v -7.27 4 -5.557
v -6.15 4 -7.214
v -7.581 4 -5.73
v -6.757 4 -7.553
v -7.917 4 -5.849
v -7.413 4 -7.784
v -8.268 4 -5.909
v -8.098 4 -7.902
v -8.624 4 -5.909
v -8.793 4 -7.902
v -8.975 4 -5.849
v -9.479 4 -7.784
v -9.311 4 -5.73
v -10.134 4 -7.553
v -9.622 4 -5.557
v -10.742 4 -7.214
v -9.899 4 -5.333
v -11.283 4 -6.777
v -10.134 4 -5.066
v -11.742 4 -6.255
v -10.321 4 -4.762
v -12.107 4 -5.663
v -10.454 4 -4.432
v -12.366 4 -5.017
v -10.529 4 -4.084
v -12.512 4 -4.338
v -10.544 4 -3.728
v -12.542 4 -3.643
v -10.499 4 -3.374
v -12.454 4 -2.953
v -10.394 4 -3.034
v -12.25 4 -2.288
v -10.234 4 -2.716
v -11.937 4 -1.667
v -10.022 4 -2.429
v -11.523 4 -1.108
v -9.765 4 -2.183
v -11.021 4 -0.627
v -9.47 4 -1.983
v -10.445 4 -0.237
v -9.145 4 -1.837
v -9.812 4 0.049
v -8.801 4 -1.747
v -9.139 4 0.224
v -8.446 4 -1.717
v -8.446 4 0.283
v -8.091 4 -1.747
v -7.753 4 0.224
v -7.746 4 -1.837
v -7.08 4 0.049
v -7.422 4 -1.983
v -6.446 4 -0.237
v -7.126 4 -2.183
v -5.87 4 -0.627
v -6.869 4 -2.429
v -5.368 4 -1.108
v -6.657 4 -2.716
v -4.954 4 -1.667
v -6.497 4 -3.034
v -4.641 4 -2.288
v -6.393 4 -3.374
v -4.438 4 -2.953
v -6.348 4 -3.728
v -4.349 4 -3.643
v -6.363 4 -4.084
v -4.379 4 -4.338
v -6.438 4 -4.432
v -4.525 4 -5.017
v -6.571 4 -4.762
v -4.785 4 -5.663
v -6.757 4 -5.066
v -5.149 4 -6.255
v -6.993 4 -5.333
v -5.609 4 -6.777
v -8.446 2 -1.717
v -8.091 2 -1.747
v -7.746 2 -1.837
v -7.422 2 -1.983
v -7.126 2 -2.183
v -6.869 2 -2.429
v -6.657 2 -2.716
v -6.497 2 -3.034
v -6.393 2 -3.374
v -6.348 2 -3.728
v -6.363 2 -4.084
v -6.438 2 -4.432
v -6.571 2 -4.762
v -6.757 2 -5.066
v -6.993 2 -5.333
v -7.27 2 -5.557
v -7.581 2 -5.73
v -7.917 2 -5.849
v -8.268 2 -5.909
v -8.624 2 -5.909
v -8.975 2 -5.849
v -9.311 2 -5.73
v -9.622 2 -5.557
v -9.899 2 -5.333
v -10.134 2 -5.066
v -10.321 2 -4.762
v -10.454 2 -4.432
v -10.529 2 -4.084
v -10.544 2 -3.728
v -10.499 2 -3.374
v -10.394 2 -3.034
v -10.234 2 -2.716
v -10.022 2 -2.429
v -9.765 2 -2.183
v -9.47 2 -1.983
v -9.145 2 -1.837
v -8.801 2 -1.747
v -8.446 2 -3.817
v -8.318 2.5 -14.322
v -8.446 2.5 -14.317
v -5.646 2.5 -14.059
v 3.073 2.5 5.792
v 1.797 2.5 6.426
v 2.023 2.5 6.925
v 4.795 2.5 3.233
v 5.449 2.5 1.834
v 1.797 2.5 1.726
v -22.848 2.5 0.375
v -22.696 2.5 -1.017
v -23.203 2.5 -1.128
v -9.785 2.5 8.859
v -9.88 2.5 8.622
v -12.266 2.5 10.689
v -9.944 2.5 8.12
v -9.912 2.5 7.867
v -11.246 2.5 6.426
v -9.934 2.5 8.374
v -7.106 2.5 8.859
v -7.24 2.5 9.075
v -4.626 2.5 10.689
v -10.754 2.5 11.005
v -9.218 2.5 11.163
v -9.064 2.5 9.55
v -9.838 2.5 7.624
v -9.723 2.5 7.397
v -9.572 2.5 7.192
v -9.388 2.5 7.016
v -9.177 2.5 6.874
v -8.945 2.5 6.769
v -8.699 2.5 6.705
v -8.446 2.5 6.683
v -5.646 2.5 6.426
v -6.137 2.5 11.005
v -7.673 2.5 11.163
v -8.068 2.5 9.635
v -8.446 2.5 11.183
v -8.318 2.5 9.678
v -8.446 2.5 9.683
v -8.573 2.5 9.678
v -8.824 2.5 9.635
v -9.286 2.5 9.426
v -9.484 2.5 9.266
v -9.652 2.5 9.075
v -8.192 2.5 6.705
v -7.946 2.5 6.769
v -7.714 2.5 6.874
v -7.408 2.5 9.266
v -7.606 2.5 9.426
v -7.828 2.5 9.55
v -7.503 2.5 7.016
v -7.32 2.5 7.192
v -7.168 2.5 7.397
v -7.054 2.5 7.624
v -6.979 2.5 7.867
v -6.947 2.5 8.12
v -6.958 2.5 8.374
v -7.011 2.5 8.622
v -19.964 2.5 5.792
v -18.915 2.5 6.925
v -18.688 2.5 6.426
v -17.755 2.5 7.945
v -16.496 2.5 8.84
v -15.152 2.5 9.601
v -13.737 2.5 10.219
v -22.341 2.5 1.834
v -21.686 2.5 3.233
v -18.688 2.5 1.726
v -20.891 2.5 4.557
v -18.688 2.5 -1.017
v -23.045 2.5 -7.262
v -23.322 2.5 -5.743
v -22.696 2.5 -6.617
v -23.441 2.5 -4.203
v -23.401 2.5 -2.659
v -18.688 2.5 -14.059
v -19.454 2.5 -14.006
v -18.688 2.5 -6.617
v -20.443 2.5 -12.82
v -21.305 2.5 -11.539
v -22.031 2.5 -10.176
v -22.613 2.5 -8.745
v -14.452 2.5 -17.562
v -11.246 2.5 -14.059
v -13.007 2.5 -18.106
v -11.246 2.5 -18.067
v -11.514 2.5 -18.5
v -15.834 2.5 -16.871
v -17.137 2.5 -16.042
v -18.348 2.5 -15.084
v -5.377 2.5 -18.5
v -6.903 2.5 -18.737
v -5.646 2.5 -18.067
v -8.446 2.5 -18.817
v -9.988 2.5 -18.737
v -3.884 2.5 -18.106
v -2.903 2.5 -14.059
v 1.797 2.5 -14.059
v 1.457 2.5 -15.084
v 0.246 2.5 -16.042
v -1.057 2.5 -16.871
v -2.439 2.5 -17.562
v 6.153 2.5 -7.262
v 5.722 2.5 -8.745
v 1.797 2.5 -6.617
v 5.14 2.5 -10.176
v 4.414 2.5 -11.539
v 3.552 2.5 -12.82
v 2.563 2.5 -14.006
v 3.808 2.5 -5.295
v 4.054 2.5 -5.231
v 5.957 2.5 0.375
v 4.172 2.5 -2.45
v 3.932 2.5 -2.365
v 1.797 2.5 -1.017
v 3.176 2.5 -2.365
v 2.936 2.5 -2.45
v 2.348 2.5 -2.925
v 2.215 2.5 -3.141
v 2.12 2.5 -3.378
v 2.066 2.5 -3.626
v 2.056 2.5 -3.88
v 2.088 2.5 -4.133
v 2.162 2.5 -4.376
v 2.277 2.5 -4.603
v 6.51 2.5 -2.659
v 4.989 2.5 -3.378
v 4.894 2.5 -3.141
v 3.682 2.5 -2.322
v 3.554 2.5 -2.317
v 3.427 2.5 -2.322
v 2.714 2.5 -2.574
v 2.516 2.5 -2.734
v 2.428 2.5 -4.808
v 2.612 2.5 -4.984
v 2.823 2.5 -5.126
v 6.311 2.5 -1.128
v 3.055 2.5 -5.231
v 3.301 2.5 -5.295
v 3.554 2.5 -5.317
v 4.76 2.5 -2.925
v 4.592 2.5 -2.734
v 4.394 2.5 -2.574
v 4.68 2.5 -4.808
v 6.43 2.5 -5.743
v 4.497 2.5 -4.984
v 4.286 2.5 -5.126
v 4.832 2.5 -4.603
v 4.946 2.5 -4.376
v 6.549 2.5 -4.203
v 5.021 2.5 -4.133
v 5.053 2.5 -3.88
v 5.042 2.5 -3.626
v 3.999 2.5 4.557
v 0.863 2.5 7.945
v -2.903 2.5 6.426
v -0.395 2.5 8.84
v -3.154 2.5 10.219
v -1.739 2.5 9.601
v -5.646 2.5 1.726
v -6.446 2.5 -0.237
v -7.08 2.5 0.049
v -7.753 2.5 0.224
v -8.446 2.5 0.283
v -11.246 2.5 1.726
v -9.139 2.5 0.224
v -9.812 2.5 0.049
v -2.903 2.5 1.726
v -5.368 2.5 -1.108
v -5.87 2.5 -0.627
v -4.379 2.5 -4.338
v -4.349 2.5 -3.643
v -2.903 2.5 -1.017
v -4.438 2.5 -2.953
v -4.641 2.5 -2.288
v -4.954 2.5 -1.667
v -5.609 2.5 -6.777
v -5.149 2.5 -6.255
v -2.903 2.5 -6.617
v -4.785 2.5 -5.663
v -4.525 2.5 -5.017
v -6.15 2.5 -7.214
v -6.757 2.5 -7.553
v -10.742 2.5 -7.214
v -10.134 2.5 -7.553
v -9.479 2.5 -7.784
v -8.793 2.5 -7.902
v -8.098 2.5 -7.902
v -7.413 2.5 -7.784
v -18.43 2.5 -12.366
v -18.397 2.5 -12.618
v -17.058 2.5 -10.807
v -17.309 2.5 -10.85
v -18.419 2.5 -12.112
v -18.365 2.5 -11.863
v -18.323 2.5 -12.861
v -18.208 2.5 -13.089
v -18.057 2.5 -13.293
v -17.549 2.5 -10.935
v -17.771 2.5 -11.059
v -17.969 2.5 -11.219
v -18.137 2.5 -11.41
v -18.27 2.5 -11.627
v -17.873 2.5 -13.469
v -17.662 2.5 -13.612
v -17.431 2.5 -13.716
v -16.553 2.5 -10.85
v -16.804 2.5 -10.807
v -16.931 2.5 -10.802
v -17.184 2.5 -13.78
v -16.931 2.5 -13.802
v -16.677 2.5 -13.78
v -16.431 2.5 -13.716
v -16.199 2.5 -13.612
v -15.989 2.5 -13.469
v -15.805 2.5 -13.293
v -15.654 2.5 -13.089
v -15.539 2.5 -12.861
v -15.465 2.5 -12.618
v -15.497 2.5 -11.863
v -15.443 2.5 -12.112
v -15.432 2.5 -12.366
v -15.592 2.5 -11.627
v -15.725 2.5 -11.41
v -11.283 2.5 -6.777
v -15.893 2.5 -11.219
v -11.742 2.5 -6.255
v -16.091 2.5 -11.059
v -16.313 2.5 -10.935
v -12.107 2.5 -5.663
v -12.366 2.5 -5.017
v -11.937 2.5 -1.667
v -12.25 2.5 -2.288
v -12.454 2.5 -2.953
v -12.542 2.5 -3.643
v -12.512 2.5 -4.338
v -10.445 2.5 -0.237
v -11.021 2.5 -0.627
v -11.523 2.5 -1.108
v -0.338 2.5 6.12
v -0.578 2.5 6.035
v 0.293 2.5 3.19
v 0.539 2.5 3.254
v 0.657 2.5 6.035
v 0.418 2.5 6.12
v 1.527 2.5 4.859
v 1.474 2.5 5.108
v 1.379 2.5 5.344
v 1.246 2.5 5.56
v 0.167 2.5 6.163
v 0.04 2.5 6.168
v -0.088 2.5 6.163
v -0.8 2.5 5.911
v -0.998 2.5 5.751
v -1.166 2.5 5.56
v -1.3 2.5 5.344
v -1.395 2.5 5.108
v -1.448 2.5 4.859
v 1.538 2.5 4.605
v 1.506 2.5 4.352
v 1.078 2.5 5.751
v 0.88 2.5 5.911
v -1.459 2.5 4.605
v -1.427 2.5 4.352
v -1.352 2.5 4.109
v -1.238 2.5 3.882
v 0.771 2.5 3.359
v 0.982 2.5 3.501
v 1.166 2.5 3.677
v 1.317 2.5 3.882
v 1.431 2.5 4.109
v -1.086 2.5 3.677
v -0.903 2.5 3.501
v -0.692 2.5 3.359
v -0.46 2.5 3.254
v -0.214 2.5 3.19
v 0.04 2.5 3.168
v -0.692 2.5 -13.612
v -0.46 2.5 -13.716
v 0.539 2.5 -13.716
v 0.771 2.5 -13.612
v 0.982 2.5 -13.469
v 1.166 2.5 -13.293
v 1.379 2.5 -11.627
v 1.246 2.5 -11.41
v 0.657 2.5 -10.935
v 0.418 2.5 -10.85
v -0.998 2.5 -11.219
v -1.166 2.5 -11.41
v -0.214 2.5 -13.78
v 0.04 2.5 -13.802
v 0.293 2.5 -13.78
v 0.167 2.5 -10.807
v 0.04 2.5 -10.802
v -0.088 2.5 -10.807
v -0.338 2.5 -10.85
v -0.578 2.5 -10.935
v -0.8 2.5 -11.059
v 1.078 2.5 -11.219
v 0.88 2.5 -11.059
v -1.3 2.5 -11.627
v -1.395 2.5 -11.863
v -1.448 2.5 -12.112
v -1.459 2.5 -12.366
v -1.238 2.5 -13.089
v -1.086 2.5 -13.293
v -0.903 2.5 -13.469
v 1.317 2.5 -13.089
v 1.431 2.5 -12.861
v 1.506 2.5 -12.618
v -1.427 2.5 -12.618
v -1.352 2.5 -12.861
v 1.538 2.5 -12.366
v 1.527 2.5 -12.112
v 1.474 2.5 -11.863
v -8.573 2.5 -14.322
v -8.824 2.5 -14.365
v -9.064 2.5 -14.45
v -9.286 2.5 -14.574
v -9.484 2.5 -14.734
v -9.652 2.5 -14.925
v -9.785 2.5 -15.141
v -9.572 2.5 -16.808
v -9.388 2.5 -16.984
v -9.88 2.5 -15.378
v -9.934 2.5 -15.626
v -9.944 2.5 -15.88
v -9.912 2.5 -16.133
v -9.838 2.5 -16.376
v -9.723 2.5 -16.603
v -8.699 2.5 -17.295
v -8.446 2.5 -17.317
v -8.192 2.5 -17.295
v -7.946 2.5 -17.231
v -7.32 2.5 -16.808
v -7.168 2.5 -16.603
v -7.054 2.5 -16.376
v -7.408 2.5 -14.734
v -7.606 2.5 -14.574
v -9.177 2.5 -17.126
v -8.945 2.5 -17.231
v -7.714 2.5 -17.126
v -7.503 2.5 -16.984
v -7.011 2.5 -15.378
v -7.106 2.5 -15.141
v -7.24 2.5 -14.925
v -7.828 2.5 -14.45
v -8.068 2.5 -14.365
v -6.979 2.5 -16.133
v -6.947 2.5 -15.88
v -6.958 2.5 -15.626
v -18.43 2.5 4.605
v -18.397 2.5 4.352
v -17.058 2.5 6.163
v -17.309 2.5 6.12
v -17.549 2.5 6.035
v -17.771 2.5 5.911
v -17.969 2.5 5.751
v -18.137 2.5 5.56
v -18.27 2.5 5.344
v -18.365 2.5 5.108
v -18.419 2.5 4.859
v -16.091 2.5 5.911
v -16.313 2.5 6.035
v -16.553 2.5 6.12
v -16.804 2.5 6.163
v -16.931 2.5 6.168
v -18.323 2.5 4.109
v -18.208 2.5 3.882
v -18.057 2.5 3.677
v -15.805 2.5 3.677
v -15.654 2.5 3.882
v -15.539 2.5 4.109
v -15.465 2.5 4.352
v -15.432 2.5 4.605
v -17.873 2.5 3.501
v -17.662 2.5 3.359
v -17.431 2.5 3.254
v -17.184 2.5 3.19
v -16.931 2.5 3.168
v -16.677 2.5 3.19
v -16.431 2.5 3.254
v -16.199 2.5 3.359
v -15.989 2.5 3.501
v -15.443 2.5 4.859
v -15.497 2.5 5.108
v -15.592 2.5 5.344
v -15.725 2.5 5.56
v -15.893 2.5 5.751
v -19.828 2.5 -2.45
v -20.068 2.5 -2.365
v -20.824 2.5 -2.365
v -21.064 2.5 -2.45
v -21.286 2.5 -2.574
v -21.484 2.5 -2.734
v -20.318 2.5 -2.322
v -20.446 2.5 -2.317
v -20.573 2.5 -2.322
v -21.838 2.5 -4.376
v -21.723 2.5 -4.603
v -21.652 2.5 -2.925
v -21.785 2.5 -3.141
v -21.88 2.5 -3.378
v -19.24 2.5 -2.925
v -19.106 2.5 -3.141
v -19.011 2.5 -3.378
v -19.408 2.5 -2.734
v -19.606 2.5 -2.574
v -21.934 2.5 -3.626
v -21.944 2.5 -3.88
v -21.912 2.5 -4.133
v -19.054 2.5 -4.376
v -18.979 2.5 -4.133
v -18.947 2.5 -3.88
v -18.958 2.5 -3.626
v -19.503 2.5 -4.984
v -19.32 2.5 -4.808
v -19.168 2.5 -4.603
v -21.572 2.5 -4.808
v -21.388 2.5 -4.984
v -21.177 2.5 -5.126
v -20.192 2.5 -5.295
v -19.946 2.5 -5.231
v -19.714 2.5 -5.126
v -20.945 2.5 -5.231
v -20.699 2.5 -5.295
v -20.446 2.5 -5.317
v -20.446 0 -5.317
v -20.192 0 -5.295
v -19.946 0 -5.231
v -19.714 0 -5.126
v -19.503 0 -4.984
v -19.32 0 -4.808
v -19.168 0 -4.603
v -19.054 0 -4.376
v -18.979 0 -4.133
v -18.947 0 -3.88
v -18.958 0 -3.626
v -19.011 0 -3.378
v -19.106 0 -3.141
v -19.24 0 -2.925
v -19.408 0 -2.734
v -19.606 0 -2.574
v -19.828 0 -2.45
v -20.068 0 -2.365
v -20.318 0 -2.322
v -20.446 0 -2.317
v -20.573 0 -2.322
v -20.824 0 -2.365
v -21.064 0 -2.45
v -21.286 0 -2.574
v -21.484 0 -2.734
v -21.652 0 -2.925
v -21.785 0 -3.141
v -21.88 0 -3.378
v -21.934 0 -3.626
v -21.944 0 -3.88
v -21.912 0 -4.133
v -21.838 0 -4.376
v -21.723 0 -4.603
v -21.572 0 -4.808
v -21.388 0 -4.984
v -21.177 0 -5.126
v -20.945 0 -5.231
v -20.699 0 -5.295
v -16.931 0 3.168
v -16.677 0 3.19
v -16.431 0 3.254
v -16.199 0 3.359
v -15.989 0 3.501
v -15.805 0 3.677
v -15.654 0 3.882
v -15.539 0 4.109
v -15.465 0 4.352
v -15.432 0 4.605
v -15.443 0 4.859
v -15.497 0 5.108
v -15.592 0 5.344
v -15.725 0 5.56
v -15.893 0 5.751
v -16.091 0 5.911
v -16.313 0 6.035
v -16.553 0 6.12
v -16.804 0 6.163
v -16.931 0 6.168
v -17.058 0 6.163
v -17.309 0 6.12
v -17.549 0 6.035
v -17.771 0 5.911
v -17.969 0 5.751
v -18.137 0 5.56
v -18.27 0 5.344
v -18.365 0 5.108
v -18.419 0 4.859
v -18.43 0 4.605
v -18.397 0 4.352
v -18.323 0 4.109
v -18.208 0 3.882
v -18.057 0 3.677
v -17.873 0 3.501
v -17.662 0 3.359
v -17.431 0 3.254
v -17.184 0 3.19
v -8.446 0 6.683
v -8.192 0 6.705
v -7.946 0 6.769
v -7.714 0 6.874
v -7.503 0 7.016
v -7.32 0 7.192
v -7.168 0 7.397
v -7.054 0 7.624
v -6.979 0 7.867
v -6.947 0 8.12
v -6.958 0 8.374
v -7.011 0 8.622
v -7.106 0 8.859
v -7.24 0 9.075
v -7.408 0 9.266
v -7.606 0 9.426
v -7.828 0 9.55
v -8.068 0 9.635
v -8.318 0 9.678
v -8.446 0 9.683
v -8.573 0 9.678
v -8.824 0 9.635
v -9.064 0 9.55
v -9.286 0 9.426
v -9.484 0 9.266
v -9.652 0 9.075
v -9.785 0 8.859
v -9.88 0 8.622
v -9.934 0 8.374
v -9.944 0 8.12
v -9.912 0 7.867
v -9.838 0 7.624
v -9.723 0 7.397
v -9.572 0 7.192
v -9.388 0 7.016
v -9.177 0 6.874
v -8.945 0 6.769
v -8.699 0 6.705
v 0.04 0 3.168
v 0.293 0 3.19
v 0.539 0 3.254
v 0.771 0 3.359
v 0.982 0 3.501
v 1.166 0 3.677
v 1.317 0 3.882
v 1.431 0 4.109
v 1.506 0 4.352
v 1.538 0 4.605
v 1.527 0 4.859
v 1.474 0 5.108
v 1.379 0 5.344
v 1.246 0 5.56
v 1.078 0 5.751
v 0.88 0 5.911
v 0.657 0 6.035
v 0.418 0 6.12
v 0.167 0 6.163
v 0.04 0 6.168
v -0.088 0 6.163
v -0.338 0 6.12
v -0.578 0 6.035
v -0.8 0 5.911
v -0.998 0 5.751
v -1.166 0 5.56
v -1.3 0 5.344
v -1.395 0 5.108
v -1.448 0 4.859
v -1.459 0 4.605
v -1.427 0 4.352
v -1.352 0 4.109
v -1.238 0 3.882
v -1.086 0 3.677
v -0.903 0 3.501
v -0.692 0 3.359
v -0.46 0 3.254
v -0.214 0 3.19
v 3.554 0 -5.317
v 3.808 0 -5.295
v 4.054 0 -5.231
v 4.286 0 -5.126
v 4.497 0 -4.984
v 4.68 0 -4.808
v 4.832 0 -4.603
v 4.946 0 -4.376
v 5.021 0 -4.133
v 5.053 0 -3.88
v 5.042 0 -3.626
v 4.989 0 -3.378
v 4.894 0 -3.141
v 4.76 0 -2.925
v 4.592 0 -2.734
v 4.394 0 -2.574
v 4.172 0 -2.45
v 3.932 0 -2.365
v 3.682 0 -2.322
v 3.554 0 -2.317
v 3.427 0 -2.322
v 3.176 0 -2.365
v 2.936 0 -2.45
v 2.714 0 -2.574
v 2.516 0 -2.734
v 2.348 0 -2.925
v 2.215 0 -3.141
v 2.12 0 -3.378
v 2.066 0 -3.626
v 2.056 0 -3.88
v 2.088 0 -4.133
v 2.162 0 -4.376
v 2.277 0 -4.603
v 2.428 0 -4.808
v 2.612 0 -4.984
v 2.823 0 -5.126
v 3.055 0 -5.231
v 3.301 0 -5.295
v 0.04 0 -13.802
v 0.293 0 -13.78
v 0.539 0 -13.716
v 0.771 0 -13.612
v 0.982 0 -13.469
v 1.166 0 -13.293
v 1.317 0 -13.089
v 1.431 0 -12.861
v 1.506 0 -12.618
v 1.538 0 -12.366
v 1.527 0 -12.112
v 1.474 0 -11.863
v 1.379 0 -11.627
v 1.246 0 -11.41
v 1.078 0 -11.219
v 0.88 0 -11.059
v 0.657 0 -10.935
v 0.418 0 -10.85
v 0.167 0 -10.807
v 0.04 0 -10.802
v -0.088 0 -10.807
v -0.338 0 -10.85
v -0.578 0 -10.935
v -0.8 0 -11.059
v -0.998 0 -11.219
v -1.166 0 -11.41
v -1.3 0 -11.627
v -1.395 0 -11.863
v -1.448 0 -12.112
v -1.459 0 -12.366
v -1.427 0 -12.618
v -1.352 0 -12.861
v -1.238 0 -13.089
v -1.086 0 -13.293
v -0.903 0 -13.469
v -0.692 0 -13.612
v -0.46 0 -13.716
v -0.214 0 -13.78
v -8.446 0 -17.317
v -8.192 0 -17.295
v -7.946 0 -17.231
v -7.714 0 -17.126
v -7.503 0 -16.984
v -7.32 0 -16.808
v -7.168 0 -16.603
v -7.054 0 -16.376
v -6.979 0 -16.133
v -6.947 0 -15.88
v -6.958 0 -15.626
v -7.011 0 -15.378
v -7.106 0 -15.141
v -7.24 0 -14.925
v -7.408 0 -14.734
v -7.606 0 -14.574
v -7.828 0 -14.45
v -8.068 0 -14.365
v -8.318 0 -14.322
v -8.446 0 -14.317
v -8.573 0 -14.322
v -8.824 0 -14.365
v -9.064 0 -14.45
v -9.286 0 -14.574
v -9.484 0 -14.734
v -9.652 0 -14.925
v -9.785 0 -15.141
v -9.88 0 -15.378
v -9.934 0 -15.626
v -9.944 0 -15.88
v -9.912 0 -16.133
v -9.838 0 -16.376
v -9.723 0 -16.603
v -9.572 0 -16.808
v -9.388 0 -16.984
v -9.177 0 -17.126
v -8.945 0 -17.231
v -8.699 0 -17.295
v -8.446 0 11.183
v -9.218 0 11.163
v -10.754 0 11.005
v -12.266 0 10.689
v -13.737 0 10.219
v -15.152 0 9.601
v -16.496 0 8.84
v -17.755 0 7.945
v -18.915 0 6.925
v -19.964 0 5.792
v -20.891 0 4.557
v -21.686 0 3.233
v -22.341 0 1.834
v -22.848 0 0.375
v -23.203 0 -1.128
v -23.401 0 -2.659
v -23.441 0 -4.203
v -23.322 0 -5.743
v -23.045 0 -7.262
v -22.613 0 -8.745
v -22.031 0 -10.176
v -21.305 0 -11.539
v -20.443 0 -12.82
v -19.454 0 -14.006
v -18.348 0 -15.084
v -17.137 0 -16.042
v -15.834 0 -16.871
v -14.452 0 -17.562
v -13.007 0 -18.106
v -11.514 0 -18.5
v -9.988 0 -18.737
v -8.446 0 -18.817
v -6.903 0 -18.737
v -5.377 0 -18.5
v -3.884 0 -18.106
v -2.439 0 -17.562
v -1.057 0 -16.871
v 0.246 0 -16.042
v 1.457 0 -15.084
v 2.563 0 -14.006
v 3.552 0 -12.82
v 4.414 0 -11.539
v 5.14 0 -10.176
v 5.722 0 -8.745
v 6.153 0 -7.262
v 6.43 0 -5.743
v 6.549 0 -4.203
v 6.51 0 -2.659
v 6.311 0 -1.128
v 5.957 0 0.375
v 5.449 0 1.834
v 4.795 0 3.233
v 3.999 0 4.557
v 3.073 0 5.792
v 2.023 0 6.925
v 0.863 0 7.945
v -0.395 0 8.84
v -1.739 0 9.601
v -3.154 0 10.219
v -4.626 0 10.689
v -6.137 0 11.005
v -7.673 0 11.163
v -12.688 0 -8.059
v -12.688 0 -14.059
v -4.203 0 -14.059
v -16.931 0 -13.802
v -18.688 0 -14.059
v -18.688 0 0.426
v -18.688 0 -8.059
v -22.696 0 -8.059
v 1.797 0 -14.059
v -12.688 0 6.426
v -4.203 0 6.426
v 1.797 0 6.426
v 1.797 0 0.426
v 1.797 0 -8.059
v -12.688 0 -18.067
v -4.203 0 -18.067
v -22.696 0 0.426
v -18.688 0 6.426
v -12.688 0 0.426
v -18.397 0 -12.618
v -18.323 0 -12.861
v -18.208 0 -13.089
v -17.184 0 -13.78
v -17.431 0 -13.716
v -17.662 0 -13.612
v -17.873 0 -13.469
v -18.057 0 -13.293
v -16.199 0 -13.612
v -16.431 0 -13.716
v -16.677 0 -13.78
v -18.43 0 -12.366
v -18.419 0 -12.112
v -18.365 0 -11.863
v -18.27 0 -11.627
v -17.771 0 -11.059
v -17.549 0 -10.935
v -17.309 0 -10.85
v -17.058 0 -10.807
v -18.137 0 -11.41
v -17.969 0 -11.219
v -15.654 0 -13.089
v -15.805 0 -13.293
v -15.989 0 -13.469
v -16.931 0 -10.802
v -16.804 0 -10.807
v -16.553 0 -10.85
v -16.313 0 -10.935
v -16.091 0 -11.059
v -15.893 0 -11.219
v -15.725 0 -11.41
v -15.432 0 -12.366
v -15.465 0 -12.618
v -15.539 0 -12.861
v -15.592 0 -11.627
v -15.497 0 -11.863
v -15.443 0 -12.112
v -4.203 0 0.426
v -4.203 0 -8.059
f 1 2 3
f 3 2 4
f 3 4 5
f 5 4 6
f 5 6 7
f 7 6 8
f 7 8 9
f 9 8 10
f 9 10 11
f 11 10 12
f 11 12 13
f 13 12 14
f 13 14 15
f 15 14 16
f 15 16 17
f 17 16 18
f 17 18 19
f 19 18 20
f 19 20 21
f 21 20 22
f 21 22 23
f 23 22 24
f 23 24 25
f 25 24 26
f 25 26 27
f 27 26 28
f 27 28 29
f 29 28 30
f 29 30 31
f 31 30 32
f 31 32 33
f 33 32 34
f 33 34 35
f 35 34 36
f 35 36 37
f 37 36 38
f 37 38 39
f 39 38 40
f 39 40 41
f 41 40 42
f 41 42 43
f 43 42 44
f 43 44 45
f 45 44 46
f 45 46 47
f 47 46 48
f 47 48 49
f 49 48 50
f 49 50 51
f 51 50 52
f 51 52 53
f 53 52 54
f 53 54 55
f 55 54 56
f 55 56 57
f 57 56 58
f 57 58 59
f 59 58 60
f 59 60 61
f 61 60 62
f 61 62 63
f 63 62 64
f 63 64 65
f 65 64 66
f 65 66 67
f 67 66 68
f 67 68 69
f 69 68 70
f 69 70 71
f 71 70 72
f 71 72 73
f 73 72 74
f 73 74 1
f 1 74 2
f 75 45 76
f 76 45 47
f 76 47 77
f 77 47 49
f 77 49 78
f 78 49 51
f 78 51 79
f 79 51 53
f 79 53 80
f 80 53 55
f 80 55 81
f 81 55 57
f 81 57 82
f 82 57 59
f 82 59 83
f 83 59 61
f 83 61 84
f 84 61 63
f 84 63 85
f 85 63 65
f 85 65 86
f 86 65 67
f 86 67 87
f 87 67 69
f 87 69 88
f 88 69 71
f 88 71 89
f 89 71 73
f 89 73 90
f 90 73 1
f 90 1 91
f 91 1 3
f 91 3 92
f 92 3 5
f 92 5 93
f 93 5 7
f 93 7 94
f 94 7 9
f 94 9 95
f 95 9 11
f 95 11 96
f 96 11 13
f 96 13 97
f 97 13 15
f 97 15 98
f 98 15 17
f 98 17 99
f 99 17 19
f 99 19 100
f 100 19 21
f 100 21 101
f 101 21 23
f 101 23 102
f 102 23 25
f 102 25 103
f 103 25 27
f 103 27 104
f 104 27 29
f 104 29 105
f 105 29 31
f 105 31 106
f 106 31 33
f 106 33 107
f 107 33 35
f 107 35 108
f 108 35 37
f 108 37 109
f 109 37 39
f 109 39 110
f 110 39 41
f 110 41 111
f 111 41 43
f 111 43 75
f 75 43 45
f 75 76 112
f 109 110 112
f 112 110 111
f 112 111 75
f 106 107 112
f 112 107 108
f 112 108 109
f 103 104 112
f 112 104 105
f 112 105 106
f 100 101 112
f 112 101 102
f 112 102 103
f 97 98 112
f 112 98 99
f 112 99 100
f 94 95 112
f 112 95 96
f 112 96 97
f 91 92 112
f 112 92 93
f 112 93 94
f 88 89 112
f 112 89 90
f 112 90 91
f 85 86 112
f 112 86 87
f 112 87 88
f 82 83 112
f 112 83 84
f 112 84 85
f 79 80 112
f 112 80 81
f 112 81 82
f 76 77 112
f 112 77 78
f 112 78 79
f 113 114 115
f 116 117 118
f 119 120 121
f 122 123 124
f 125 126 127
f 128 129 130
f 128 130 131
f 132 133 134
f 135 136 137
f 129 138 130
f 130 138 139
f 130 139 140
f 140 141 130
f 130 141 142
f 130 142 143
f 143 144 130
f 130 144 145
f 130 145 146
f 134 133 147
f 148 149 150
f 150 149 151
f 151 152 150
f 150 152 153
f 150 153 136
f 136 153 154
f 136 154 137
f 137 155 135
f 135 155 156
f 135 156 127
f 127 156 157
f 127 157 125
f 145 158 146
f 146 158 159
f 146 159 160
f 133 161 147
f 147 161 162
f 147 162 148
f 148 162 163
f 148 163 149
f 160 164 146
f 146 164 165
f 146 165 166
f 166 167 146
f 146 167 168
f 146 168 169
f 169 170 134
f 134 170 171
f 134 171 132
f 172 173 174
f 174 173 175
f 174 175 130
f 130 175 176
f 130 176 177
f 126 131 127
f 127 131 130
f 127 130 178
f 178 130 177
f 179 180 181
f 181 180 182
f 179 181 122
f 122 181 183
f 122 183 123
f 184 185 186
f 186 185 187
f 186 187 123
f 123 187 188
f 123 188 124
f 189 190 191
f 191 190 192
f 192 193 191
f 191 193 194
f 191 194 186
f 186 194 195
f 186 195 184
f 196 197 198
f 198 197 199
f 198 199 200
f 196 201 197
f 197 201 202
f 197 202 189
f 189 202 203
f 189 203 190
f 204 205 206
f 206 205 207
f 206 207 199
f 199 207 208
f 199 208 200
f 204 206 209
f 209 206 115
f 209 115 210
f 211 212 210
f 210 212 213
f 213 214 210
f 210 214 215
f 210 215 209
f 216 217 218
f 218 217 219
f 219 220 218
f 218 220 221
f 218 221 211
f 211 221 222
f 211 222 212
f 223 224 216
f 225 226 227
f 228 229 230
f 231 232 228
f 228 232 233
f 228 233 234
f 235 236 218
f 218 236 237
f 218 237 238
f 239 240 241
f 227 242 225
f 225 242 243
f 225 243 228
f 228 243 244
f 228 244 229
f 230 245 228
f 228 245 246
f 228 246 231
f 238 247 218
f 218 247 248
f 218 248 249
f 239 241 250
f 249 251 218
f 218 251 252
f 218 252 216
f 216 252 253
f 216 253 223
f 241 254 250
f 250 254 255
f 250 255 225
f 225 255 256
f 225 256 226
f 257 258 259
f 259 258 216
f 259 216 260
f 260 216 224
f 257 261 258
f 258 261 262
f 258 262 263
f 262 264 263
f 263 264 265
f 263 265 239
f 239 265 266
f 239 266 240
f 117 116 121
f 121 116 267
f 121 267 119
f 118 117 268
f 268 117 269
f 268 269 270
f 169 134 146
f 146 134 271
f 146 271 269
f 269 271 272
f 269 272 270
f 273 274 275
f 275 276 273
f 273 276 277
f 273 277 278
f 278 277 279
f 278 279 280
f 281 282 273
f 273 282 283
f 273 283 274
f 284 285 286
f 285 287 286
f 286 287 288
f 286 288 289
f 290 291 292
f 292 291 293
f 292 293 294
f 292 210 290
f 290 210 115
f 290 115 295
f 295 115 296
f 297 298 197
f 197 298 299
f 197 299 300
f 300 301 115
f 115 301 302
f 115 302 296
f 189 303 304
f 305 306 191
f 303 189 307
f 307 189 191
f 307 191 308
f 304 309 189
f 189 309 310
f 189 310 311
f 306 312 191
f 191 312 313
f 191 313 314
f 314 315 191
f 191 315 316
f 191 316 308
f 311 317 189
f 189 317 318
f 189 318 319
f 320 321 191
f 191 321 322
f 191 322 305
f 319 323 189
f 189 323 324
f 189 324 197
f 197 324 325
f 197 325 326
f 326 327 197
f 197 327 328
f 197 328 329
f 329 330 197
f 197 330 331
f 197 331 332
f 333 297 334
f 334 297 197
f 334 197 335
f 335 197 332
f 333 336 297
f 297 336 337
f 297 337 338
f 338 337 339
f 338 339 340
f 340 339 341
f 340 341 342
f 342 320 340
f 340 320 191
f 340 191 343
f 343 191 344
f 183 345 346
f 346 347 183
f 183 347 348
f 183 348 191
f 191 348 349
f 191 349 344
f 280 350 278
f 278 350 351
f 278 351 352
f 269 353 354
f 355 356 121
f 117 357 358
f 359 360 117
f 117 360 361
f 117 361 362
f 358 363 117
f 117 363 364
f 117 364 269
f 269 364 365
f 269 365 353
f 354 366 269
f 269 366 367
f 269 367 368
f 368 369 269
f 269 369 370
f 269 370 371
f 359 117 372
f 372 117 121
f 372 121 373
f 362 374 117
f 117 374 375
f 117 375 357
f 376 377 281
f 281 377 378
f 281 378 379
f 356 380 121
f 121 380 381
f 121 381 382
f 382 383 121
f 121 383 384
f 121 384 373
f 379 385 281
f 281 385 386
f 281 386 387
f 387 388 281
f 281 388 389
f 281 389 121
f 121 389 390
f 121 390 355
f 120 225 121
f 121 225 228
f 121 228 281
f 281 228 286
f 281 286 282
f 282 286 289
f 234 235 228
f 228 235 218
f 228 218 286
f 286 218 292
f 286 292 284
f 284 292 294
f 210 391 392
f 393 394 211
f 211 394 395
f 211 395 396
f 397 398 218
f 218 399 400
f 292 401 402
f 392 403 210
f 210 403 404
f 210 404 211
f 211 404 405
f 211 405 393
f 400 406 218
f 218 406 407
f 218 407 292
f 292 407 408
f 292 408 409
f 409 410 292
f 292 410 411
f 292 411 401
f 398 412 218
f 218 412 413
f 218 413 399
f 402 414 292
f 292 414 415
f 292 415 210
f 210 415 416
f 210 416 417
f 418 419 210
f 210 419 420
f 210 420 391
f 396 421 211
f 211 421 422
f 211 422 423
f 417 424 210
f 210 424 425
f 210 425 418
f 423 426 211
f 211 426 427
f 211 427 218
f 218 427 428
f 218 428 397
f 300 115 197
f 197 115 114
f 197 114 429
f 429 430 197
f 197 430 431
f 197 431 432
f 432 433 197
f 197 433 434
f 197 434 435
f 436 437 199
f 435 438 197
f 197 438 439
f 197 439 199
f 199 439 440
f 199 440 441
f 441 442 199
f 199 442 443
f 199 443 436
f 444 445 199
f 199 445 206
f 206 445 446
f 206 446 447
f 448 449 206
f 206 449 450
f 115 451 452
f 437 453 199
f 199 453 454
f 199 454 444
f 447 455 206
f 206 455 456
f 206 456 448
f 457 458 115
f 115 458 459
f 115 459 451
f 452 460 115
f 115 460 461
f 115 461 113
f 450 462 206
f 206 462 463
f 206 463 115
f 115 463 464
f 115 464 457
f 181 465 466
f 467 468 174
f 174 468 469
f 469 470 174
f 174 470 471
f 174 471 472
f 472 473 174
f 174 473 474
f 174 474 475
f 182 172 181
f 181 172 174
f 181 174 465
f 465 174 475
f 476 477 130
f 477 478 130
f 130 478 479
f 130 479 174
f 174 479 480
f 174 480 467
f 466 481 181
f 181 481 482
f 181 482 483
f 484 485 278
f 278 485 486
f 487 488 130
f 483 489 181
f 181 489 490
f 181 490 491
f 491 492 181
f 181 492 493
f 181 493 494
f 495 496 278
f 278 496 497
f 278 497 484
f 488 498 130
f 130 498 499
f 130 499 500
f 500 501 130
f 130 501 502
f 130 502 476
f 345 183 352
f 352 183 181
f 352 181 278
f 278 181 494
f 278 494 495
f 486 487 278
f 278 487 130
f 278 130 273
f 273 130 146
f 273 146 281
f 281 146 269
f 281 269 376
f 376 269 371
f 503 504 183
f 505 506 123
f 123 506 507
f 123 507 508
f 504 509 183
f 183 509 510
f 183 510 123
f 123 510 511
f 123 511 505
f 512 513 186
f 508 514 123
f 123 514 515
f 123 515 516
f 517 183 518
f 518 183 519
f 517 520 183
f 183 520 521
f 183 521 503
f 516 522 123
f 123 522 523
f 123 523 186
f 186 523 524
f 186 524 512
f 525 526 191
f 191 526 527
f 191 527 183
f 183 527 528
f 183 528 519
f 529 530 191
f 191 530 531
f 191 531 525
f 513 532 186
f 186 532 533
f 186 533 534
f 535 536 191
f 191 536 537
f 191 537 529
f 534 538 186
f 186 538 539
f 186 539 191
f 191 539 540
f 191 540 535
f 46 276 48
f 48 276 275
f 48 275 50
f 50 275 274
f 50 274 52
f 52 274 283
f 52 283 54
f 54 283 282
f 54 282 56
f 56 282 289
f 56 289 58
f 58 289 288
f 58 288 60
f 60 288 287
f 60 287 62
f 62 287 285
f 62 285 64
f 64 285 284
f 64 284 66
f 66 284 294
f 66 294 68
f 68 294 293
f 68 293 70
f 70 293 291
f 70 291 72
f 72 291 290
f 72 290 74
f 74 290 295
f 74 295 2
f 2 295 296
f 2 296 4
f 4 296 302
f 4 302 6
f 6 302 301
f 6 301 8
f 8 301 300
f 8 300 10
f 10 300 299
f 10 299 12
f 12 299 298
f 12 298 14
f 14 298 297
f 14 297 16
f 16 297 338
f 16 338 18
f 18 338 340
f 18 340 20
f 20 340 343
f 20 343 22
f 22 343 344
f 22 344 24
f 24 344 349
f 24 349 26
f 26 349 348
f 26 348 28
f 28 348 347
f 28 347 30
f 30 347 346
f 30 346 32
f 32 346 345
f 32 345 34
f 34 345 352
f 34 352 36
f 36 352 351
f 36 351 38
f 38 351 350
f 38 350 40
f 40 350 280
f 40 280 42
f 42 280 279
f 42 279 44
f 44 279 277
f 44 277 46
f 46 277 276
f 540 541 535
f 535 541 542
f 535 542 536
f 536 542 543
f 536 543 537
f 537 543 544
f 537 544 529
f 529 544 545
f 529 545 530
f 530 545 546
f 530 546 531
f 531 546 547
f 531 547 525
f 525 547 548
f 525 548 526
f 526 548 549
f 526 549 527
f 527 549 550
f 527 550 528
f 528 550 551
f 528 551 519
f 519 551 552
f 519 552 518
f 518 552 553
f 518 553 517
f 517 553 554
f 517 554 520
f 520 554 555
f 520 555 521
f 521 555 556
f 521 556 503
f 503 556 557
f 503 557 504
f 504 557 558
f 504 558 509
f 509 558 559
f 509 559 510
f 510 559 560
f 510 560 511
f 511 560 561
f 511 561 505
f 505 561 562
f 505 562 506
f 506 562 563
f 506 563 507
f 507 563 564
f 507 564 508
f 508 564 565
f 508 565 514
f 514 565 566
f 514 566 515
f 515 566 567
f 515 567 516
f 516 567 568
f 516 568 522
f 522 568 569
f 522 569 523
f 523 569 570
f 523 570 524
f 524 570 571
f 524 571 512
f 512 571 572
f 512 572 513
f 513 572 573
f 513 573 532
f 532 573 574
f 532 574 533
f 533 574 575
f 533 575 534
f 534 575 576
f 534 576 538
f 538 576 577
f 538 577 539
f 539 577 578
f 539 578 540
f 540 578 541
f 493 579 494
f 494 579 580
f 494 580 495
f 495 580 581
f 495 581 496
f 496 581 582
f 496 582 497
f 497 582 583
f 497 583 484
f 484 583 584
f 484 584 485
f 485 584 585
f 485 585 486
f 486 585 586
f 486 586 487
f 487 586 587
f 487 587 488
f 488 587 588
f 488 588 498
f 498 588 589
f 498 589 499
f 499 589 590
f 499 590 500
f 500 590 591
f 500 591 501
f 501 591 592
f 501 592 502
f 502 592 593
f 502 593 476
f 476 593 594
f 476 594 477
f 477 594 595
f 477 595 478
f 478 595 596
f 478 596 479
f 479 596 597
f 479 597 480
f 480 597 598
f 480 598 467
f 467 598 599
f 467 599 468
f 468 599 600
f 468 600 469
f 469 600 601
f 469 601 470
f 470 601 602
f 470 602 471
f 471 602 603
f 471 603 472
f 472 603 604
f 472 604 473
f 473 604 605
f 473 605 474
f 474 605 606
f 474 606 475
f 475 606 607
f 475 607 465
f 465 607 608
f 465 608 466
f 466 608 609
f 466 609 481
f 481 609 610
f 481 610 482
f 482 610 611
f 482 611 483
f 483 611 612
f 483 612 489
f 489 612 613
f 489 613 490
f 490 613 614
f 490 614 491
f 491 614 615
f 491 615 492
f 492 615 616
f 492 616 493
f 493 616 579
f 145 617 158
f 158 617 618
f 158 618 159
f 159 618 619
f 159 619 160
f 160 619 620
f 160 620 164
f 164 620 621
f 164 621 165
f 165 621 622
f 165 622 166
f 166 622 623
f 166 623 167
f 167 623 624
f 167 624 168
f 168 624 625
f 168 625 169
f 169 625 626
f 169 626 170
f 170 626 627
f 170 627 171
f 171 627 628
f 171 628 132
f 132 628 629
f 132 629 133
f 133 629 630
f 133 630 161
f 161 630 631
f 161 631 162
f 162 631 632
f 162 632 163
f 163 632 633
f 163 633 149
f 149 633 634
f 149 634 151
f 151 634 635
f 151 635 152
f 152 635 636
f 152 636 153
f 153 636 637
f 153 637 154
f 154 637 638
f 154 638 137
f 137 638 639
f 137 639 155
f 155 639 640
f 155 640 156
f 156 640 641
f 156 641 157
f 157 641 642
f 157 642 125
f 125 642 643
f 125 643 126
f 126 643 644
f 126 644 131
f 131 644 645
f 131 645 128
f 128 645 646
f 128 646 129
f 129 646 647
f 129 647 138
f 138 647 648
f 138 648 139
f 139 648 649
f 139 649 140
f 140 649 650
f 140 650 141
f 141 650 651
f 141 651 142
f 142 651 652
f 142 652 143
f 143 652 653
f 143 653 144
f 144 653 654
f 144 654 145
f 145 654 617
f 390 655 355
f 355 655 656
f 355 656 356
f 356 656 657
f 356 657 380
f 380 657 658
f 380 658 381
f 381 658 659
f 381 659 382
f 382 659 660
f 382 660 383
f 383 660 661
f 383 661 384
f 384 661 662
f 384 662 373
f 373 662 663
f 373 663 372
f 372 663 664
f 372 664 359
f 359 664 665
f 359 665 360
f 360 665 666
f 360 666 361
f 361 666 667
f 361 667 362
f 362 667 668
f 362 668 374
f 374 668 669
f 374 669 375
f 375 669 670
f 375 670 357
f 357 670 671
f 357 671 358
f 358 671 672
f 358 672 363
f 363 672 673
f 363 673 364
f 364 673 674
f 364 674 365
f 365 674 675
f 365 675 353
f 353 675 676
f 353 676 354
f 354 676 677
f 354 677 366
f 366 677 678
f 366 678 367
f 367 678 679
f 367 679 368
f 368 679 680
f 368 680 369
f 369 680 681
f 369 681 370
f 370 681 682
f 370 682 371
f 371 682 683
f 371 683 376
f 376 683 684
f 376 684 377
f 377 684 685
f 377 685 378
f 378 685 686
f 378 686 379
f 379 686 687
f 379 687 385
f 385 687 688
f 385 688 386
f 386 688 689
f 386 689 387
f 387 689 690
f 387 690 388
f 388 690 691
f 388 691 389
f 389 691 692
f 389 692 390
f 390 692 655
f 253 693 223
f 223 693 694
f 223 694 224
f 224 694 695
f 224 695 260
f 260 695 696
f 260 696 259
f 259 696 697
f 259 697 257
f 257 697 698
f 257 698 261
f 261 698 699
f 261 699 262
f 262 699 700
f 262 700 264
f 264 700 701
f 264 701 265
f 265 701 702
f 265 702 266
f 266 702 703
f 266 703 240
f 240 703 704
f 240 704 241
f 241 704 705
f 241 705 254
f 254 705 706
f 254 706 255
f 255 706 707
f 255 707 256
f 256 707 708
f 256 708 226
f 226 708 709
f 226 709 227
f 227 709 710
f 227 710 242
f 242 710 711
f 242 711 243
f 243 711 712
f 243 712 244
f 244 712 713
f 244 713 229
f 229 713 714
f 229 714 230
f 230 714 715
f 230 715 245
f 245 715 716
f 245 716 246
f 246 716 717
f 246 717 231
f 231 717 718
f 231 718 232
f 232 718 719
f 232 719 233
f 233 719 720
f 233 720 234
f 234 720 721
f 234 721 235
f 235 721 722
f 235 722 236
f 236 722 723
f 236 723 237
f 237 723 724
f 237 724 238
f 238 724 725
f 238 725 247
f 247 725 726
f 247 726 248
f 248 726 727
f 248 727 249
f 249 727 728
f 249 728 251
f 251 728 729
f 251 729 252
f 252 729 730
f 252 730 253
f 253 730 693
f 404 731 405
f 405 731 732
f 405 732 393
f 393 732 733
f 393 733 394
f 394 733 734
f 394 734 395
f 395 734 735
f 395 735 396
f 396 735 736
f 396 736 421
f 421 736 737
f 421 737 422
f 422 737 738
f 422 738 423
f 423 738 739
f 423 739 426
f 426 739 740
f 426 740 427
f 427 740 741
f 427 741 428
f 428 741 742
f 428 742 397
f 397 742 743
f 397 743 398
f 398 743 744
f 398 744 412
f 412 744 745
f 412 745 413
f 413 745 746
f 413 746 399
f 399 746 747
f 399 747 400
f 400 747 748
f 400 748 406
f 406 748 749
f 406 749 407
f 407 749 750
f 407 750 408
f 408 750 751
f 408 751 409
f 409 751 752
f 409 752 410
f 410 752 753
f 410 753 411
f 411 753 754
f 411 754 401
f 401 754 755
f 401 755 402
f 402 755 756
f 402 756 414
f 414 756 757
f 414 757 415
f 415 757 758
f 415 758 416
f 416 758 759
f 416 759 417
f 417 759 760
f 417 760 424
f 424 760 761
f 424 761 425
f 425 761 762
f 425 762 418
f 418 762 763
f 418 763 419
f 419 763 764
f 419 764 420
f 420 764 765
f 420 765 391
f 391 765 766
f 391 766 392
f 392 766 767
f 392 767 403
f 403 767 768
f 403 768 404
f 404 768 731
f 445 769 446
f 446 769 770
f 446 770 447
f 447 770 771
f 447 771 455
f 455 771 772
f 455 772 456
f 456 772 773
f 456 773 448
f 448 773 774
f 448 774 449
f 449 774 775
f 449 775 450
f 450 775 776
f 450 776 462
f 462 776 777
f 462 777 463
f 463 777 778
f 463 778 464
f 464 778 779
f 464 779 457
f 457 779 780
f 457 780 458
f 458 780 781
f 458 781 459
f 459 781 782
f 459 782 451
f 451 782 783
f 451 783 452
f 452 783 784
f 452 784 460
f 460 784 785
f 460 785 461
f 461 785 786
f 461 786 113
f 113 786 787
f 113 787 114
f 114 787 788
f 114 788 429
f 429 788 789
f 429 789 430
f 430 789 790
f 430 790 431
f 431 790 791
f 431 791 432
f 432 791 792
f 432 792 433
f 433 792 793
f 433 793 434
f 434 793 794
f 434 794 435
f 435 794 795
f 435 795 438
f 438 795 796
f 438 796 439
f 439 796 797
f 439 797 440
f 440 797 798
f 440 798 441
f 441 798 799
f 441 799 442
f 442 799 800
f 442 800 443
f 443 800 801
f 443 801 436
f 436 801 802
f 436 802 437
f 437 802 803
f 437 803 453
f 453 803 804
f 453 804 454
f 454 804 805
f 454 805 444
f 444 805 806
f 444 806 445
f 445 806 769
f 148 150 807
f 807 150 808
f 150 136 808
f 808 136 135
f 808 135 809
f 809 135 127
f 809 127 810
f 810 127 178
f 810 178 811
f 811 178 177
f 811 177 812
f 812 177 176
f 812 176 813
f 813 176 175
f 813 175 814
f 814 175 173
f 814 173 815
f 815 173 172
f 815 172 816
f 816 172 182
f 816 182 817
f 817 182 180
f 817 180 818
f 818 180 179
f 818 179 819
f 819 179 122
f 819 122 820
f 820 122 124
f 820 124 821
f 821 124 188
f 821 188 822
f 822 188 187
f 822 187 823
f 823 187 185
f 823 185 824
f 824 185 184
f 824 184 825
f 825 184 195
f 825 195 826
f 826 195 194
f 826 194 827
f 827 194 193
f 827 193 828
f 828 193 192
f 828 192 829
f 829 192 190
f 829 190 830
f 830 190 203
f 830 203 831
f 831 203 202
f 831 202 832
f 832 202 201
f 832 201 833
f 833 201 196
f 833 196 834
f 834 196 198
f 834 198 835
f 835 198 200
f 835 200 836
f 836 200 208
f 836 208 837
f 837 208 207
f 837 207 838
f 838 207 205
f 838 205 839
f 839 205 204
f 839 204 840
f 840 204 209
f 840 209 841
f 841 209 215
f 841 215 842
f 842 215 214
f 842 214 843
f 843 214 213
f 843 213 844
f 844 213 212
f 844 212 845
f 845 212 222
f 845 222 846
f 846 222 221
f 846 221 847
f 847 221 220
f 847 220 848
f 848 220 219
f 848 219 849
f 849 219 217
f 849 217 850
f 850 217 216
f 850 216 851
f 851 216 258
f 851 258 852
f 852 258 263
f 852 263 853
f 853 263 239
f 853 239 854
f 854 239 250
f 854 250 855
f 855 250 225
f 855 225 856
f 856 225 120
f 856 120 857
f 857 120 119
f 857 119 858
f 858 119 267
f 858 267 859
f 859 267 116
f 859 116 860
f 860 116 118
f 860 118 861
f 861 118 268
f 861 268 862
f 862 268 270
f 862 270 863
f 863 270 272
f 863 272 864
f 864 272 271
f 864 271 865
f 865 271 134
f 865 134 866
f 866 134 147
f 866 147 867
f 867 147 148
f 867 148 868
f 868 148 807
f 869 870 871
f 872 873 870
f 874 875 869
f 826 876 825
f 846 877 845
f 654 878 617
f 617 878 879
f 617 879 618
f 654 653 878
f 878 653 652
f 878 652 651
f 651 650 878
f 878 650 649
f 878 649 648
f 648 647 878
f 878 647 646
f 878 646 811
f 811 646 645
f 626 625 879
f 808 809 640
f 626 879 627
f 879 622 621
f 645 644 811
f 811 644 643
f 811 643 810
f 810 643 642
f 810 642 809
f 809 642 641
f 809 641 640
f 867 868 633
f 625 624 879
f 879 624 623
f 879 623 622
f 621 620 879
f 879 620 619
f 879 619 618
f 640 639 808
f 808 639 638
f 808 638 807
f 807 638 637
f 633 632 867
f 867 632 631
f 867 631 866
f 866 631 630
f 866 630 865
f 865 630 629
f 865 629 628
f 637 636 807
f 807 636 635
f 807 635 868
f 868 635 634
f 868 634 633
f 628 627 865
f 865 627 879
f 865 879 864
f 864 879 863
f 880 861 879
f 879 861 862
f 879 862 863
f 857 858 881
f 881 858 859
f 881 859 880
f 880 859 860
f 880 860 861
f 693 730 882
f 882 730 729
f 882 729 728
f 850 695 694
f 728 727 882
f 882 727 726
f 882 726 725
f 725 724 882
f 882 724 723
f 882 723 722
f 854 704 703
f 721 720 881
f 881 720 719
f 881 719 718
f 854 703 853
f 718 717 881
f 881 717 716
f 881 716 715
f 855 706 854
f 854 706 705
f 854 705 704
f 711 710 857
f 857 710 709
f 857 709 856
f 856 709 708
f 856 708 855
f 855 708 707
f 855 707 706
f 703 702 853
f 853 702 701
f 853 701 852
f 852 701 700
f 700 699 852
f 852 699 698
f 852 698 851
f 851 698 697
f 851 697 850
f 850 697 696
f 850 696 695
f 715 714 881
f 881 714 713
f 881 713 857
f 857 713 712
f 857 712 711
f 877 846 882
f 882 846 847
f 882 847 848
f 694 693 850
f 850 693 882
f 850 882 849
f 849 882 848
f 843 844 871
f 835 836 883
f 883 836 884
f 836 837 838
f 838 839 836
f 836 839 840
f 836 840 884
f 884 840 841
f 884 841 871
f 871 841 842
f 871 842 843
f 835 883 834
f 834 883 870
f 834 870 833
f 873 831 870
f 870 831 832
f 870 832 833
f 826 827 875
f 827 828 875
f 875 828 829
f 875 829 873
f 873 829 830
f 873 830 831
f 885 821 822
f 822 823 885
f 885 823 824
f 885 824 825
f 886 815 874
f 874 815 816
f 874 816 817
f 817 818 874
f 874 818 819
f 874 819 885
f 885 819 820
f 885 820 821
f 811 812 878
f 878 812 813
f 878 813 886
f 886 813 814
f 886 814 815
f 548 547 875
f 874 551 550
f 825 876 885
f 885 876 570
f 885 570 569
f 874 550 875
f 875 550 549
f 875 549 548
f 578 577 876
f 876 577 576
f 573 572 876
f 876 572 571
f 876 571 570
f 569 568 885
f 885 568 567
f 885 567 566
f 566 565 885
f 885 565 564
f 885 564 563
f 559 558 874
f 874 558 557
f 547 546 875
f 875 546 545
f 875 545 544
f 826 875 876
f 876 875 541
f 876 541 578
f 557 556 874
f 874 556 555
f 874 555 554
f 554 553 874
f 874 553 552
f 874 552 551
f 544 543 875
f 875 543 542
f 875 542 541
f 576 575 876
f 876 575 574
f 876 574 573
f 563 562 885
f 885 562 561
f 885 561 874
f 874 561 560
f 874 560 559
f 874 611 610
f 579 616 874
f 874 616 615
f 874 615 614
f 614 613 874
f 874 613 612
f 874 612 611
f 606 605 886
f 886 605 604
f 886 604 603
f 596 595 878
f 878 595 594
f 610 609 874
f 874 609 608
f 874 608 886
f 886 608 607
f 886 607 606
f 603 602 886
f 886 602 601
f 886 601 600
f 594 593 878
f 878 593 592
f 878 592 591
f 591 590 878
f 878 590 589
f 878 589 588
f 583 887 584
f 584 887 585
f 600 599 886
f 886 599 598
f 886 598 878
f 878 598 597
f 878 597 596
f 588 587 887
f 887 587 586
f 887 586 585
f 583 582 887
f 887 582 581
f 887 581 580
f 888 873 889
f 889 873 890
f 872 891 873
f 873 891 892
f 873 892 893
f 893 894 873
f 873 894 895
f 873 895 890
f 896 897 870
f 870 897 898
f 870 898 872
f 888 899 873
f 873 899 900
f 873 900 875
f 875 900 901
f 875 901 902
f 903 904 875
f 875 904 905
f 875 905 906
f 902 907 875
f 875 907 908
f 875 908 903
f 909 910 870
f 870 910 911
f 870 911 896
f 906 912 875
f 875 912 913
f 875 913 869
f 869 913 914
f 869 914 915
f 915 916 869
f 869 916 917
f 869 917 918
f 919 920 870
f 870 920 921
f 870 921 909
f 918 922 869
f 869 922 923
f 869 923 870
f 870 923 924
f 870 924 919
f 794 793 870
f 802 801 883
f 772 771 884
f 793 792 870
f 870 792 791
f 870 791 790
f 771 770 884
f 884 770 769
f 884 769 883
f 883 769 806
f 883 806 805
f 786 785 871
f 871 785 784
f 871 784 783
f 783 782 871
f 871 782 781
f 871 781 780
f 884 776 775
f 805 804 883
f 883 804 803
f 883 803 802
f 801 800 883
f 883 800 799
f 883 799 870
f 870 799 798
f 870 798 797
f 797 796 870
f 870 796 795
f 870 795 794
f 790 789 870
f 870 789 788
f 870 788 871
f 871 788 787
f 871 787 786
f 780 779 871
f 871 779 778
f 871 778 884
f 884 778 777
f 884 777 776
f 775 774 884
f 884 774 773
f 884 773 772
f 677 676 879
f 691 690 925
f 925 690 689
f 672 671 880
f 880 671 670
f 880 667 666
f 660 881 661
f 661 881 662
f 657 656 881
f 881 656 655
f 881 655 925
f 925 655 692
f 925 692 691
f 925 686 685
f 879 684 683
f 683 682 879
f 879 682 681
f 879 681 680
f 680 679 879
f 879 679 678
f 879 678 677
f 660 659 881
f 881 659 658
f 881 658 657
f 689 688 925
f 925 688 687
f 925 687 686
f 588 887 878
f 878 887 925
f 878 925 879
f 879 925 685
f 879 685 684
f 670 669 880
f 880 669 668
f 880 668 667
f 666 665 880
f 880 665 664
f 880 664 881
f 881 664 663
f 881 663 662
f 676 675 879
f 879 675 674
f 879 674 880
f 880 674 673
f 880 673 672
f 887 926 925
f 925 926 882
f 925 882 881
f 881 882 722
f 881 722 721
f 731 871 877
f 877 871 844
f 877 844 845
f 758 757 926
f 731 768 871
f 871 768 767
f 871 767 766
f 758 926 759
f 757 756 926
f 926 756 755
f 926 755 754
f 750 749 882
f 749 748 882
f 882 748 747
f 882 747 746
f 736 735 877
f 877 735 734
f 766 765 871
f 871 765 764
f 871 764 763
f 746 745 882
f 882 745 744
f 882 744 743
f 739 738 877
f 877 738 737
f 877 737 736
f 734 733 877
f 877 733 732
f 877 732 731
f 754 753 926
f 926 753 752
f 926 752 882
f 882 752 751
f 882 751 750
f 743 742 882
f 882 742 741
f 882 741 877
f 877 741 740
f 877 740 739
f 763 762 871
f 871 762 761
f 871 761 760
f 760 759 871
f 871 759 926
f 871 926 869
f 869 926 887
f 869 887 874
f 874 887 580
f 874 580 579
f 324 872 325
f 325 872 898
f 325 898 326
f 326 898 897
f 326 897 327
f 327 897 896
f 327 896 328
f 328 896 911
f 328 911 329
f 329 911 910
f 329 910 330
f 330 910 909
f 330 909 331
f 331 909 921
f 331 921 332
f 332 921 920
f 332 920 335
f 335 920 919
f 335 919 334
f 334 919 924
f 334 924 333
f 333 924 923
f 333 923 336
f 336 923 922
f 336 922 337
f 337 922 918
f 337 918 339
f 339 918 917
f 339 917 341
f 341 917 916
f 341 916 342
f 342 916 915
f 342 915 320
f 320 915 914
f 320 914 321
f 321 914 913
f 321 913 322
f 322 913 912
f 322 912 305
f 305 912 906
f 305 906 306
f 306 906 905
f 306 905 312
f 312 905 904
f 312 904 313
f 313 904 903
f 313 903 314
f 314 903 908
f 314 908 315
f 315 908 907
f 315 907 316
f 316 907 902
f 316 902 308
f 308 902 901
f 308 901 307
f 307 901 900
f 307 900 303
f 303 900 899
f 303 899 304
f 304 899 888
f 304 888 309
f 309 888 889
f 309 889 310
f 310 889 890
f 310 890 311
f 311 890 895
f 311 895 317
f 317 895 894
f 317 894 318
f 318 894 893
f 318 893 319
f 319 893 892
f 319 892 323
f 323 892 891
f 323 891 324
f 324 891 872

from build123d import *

# Parameters (mm, degrees)
SKETCH1_R           = 15
SKETCH1_R_2         = 1.5
BOSS_EXTRUDE1_DEPTH = 4
SKETCH2_R           = 2.1
CUT_EXTRUDE1_DEPTH  = 2
SKETCH3_R           = 21.629030548
SKETCH3_R_2         = 4.1
CUT_EXTRUDE2_DEPTH  = 1.5


with BuildPart() as part:
    # Sketch1 → Boss-Extrude1 (new body)
    with BuildSketch(Plane(origin=(0, 0, 0), x_dir=(1, 0, 0), z_dir=(0, 1, 0))):
        with Locations(Location((-8.445672376, 3.816794247, 0), (0, 0, 270))):
            Circle(SKETCH1_R)
        with Locations(Location((-8.445672376, 15.816794247, 0), (0, 0, 270))):
            Circle(SKETCH1_R_2, mode=Mode.SUBTRACT)
        with Locations(Location((0.039608998, 12.302075621, 0), (0, 0, 270))):
            Circle(SKETCH1_R_2, mode=Mode.SUBTRACT)
        with Locations(Location((3.554327624, 3.816794247, 0), (0, 0, 270))):
            Circle(SKETCH1_R_2, mode=Mode.SUBTRACT)
        with Locations(Location((0.039608998, -4.668487127, 0), (0, 0, 270))):
            Circle(SKETCH1_R_2, mode=Mode.SUBTRACT)
        with Locations(Location((-8.445672376, -8.183205753, 0), (0, 0, 270))):
            Circle(SKETCH1_R_2, mode=Mode.SUBTRACT)
        with Locations(Location((-16.93095375, -4.668487127, 0), (0, 0, 270))):
            Circle(SKETCH1_R_2, mode=Mode.SUBTRACT)
        with Locations(Location((-20.445672376, 3.816794247, 0), (0, 0, 270))):
            Circle(SKETCH1_R_2, mode=Mode.SUBTRACT)
        with Locations(Location((-16.93095375, 12.302075621, 0), (0, 0, 270))):
            Circle(SKETCH1_R_2, mode=Mode.SUBTRACT)
    extrude(amount=BOSS_EXTRUDE1_DEPTH)

    # Sketch2 → Cut-Extrude1 (cut)
    with BuildSketch(Plane(origin=(0, 4, 0), x_dir=(1, 0, 0), z_dir=(0, 1, 0))):
        with Locations(Location((-8.445672376, 3.816794247, 0), (0, 0, 270))):
            Circle(SKETCH2_R)
    extrude(amount=-CUT_EXTRUDE1_DEPTH, mode=Mode.SUBTRACT)

    # Sketch3 → Cut-Extrude2 (cut)
    with BuildSketch(Plane(origin=(0, 4, 0), x_dir=(1, 0, 0), z_dir=(0, 1, 0))):
        with Locations((-8.445672376, 3.816794247)):
            Circle(SKETCH3_R)
        with Locations(Location((-8.445672376, 3.816794247, 0), (0, 0, 270))):
            Circle(SKETCH3_R_2, mode=Mode.SUBTRACT)
    extrude(amount=-CUT_EXTRUDE2_DEPTH, mode=Mode.SUBTRACT)


solid = part.part
